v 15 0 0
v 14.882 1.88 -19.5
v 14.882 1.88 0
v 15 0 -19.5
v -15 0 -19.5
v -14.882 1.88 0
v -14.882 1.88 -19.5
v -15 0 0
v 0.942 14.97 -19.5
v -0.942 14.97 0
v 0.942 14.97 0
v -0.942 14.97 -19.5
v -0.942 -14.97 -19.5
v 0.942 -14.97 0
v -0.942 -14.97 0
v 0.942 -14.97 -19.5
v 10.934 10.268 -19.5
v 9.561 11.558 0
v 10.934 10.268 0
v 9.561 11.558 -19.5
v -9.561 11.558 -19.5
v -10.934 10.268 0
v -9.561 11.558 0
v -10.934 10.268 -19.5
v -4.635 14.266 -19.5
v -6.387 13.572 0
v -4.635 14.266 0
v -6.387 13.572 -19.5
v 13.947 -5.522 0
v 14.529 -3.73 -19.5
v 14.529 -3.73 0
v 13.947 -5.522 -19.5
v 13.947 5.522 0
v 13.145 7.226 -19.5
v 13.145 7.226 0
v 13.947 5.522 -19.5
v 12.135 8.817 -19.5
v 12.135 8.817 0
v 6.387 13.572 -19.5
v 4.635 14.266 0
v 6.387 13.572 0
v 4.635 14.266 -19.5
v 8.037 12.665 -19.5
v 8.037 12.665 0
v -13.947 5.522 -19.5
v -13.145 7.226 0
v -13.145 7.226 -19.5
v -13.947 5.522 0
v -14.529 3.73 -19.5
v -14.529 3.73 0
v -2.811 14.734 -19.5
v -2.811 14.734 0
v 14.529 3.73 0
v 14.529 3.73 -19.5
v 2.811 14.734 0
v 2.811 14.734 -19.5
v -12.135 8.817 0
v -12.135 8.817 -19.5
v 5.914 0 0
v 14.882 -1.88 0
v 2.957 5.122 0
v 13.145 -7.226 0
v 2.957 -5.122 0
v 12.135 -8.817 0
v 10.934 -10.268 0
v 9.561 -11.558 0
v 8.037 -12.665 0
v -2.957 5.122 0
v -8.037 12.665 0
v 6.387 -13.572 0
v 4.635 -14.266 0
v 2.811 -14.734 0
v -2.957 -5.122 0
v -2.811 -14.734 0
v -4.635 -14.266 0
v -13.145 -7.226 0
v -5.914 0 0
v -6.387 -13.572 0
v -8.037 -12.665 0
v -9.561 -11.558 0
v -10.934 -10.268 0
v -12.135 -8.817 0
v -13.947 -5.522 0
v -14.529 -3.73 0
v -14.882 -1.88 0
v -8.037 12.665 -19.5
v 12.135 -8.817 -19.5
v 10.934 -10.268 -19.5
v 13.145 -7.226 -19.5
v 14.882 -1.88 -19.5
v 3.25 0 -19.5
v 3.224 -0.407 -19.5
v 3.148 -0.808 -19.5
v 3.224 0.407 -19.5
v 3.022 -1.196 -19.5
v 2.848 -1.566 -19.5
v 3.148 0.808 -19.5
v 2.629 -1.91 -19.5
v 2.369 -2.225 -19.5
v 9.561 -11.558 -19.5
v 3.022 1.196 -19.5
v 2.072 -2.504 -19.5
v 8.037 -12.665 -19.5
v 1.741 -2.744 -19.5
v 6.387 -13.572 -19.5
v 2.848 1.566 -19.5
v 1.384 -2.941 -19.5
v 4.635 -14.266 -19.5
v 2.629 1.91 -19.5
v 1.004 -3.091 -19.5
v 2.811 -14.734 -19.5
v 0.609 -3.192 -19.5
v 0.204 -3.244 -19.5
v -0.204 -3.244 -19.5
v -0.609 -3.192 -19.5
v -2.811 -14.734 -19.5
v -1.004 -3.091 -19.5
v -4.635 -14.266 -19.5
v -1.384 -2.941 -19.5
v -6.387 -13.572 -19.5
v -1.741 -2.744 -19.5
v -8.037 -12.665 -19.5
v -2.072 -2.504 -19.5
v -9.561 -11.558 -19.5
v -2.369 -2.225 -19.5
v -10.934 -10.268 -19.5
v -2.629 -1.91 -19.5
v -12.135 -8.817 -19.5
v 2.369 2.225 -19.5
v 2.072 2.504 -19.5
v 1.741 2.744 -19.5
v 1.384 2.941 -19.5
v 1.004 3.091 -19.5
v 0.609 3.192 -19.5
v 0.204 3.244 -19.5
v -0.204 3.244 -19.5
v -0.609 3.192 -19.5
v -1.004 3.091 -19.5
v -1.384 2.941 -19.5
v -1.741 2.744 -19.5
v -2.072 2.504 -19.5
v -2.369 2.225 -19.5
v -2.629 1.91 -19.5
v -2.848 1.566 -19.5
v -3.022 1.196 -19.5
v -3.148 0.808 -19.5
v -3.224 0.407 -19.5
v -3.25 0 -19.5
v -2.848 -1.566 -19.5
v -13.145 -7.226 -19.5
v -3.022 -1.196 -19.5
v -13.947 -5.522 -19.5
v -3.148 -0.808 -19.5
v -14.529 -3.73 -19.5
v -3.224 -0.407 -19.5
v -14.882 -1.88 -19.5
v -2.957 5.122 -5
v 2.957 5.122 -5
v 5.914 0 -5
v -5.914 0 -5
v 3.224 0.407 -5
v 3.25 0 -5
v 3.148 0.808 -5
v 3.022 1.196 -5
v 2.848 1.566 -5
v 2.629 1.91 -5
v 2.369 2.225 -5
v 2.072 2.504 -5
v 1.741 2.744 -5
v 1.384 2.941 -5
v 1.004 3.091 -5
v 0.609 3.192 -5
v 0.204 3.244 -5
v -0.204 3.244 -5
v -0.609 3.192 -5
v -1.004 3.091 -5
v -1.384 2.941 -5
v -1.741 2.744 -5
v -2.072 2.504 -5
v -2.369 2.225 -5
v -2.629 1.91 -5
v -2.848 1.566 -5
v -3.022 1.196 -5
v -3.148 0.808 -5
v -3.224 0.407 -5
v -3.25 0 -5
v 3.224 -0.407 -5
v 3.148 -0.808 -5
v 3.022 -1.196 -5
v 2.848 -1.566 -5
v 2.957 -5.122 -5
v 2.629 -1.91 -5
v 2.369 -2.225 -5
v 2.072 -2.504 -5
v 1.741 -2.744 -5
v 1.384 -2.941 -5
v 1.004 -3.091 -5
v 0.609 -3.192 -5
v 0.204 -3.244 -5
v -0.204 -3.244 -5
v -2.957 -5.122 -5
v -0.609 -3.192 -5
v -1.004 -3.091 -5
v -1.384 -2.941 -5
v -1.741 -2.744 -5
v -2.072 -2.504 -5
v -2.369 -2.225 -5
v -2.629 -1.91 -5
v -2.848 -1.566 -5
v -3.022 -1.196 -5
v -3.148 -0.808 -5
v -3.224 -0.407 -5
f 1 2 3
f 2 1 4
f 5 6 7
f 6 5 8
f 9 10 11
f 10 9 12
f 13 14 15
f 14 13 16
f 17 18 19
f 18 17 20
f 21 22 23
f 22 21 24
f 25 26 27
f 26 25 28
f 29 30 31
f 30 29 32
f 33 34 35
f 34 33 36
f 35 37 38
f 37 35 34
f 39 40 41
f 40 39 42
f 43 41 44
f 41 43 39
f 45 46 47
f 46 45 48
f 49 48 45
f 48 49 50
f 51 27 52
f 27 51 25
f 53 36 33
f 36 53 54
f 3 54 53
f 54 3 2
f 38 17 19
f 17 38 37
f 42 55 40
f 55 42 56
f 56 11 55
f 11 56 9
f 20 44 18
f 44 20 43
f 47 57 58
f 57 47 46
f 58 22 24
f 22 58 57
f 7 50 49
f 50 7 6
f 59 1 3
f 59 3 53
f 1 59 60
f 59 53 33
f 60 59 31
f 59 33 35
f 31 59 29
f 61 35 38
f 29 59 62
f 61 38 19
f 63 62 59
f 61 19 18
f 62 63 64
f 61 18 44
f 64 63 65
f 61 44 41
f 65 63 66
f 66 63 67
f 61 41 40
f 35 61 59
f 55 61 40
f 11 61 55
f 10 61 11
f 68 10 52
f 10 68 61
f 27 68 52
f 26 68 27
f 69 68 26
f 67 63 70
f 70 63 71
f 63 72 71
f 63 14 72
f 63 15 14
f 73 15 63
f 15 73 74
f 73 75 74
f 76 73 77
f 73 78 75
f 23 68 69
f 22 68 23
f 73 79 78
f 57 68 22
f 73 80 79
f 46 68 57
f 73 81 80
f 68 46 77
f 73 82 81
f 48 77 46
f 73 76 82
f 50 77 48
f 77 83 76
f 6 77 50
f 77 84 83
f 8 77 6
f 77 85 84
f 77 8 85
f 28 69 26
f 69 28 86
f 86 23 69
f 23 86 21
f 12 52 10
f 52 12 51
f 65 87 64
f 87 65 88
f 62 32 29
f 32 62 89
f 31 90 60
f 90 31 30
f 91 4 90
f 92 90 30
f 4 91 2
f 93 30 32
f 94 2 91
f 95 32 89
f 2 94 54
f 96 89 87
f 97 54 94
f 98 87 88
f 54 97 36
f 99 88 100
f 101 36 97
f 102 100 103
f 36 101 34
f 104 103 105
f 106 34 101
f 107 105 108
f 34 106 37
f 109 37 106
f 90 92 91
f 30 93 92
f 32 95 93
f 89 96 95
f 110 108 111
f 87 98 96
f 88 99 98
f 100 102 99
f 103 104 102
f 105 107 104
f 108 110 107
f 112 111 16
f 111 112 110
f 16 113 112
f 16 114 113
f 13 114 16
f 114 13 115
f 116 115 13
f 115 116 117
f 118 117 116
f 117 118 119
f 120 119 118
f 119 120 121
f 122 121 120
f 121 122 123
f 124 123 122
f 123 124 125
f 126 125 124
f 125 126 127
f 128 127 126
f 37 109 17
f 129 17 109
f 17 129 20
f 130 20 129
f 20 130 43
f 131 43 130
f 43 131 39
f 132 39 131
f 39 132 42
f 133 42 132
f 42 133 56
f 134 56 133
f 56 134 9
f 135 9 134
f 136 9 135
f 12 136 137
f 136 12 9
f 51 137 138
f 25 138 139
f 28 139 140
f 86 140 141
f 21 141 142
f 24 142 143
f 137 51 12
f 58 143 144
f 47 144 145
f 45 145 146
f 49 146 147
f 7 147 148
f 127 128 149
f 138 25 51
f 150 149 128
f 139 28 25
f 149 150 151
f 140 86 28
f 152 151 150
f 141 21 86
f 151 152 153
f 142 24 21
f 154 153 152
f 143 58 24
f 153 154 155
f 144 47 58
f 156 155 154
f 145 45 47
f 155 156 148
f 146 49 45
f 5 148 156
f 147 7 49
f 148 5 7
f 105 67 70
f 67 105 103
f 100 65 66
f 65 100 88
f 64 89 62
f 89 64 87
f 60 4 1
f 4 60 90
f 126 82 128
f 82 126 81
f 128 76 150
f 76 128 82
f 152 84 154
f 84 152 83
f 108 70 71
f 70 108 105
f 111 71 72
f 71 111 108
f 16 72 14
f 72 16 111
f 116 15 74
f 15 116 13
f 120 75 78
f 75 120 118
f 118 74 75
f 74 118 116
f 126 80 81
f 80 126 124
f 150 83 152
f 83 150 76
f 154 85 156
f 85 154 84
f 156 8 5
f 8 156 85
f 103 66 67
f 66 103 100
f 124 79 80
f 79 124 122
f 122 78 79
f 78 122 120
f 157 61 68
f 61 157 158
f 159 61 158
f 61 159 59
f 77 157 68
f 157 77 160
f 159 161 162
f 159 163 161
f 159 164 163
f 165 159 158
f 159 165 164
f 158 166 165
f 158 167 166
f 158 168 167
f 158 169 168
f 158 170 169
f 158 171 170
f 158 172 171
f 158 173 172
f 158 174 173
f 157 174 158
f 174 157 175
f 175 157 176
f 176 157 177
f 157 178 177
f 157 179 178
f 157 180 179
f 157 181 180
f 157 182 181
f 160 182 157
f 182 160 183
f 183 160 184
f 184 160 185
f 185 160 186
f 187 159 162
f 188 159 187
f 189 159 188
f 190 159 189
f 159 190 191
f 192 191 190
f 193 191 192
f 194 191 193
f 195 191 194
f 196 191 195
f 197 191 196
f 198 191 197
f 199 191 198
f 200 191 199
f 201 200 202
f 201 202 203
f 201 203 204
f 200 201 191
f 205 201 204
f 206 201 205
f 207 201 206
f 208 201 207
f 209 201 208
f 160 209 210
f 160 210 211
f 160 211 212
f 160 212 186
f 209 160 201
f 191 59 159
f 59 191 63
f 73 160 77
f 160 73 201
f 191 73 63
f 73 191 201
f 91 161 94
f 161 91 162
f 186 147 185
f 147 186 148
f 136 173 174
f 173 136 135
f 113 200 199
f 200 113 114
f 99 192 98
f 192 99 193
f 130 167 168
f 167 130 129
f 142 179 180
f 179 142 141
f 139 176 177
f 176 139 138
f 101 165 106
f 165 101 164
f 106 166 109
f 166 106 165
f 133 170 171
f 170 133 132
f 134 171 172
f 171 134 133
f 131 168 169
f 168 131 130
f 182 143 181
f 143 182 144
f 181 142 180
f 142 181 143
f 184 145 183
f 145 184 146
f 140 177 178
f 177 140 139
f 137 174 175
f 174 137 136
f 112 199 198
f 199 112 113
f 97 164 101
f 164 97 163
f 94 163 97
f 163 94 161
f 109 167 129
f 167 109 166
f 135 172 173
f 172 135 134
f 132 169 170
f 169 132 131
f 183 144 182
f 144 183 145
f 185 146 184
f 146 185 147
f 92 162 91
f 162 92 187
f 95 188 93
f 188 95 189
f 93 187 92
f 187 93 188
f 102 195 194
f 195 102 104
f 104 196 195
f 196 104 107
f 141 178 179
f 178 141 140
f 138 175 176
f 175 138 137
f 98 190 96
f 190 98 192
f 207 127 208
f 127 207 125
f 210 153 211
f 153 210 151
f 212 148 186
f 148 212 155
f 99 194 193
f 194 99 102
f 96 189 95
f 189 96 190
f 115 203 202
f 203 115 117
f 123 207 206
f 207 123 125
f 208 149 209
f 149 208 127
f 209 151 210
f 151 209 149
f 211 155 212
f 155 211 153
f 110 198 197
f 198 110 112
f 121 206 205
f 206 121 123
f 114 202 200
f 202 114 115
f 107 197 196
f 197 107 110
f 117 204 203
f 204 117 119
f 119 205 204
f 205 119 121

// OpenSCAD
$fn = 50;

difference() {
	union() {
		translate(v = [0, 0, -19.5]) {
			cylinder(h = 19.5, r = 15.0);
		}
	}
	union() {
		translate(v = [0, 0, 0]) {
			rotate(a = [0, 0, 0]) {
				difference() {
					union() {
						translate(v = [0, 0, -5]) {
							linear_extrude(height = 5) {
								polygon(points = [[5.914249999999999, 0.0], [2.957125, 5.1218907443321156], [-2.9571249999999982, 5.1218907443321156], [-5.914249999999999, 7.242867331857232e-16], [-2.9571250000000022, -5.121890744332115], [2.9571249999999956, -5.121890744332118]]);
							}
						}
					}
					union();
				}
			}
		}
		#translate(v = [0, 0, -100.0]) {
			cylinder(h = 200, r = 3.25);
		}
	}
}
